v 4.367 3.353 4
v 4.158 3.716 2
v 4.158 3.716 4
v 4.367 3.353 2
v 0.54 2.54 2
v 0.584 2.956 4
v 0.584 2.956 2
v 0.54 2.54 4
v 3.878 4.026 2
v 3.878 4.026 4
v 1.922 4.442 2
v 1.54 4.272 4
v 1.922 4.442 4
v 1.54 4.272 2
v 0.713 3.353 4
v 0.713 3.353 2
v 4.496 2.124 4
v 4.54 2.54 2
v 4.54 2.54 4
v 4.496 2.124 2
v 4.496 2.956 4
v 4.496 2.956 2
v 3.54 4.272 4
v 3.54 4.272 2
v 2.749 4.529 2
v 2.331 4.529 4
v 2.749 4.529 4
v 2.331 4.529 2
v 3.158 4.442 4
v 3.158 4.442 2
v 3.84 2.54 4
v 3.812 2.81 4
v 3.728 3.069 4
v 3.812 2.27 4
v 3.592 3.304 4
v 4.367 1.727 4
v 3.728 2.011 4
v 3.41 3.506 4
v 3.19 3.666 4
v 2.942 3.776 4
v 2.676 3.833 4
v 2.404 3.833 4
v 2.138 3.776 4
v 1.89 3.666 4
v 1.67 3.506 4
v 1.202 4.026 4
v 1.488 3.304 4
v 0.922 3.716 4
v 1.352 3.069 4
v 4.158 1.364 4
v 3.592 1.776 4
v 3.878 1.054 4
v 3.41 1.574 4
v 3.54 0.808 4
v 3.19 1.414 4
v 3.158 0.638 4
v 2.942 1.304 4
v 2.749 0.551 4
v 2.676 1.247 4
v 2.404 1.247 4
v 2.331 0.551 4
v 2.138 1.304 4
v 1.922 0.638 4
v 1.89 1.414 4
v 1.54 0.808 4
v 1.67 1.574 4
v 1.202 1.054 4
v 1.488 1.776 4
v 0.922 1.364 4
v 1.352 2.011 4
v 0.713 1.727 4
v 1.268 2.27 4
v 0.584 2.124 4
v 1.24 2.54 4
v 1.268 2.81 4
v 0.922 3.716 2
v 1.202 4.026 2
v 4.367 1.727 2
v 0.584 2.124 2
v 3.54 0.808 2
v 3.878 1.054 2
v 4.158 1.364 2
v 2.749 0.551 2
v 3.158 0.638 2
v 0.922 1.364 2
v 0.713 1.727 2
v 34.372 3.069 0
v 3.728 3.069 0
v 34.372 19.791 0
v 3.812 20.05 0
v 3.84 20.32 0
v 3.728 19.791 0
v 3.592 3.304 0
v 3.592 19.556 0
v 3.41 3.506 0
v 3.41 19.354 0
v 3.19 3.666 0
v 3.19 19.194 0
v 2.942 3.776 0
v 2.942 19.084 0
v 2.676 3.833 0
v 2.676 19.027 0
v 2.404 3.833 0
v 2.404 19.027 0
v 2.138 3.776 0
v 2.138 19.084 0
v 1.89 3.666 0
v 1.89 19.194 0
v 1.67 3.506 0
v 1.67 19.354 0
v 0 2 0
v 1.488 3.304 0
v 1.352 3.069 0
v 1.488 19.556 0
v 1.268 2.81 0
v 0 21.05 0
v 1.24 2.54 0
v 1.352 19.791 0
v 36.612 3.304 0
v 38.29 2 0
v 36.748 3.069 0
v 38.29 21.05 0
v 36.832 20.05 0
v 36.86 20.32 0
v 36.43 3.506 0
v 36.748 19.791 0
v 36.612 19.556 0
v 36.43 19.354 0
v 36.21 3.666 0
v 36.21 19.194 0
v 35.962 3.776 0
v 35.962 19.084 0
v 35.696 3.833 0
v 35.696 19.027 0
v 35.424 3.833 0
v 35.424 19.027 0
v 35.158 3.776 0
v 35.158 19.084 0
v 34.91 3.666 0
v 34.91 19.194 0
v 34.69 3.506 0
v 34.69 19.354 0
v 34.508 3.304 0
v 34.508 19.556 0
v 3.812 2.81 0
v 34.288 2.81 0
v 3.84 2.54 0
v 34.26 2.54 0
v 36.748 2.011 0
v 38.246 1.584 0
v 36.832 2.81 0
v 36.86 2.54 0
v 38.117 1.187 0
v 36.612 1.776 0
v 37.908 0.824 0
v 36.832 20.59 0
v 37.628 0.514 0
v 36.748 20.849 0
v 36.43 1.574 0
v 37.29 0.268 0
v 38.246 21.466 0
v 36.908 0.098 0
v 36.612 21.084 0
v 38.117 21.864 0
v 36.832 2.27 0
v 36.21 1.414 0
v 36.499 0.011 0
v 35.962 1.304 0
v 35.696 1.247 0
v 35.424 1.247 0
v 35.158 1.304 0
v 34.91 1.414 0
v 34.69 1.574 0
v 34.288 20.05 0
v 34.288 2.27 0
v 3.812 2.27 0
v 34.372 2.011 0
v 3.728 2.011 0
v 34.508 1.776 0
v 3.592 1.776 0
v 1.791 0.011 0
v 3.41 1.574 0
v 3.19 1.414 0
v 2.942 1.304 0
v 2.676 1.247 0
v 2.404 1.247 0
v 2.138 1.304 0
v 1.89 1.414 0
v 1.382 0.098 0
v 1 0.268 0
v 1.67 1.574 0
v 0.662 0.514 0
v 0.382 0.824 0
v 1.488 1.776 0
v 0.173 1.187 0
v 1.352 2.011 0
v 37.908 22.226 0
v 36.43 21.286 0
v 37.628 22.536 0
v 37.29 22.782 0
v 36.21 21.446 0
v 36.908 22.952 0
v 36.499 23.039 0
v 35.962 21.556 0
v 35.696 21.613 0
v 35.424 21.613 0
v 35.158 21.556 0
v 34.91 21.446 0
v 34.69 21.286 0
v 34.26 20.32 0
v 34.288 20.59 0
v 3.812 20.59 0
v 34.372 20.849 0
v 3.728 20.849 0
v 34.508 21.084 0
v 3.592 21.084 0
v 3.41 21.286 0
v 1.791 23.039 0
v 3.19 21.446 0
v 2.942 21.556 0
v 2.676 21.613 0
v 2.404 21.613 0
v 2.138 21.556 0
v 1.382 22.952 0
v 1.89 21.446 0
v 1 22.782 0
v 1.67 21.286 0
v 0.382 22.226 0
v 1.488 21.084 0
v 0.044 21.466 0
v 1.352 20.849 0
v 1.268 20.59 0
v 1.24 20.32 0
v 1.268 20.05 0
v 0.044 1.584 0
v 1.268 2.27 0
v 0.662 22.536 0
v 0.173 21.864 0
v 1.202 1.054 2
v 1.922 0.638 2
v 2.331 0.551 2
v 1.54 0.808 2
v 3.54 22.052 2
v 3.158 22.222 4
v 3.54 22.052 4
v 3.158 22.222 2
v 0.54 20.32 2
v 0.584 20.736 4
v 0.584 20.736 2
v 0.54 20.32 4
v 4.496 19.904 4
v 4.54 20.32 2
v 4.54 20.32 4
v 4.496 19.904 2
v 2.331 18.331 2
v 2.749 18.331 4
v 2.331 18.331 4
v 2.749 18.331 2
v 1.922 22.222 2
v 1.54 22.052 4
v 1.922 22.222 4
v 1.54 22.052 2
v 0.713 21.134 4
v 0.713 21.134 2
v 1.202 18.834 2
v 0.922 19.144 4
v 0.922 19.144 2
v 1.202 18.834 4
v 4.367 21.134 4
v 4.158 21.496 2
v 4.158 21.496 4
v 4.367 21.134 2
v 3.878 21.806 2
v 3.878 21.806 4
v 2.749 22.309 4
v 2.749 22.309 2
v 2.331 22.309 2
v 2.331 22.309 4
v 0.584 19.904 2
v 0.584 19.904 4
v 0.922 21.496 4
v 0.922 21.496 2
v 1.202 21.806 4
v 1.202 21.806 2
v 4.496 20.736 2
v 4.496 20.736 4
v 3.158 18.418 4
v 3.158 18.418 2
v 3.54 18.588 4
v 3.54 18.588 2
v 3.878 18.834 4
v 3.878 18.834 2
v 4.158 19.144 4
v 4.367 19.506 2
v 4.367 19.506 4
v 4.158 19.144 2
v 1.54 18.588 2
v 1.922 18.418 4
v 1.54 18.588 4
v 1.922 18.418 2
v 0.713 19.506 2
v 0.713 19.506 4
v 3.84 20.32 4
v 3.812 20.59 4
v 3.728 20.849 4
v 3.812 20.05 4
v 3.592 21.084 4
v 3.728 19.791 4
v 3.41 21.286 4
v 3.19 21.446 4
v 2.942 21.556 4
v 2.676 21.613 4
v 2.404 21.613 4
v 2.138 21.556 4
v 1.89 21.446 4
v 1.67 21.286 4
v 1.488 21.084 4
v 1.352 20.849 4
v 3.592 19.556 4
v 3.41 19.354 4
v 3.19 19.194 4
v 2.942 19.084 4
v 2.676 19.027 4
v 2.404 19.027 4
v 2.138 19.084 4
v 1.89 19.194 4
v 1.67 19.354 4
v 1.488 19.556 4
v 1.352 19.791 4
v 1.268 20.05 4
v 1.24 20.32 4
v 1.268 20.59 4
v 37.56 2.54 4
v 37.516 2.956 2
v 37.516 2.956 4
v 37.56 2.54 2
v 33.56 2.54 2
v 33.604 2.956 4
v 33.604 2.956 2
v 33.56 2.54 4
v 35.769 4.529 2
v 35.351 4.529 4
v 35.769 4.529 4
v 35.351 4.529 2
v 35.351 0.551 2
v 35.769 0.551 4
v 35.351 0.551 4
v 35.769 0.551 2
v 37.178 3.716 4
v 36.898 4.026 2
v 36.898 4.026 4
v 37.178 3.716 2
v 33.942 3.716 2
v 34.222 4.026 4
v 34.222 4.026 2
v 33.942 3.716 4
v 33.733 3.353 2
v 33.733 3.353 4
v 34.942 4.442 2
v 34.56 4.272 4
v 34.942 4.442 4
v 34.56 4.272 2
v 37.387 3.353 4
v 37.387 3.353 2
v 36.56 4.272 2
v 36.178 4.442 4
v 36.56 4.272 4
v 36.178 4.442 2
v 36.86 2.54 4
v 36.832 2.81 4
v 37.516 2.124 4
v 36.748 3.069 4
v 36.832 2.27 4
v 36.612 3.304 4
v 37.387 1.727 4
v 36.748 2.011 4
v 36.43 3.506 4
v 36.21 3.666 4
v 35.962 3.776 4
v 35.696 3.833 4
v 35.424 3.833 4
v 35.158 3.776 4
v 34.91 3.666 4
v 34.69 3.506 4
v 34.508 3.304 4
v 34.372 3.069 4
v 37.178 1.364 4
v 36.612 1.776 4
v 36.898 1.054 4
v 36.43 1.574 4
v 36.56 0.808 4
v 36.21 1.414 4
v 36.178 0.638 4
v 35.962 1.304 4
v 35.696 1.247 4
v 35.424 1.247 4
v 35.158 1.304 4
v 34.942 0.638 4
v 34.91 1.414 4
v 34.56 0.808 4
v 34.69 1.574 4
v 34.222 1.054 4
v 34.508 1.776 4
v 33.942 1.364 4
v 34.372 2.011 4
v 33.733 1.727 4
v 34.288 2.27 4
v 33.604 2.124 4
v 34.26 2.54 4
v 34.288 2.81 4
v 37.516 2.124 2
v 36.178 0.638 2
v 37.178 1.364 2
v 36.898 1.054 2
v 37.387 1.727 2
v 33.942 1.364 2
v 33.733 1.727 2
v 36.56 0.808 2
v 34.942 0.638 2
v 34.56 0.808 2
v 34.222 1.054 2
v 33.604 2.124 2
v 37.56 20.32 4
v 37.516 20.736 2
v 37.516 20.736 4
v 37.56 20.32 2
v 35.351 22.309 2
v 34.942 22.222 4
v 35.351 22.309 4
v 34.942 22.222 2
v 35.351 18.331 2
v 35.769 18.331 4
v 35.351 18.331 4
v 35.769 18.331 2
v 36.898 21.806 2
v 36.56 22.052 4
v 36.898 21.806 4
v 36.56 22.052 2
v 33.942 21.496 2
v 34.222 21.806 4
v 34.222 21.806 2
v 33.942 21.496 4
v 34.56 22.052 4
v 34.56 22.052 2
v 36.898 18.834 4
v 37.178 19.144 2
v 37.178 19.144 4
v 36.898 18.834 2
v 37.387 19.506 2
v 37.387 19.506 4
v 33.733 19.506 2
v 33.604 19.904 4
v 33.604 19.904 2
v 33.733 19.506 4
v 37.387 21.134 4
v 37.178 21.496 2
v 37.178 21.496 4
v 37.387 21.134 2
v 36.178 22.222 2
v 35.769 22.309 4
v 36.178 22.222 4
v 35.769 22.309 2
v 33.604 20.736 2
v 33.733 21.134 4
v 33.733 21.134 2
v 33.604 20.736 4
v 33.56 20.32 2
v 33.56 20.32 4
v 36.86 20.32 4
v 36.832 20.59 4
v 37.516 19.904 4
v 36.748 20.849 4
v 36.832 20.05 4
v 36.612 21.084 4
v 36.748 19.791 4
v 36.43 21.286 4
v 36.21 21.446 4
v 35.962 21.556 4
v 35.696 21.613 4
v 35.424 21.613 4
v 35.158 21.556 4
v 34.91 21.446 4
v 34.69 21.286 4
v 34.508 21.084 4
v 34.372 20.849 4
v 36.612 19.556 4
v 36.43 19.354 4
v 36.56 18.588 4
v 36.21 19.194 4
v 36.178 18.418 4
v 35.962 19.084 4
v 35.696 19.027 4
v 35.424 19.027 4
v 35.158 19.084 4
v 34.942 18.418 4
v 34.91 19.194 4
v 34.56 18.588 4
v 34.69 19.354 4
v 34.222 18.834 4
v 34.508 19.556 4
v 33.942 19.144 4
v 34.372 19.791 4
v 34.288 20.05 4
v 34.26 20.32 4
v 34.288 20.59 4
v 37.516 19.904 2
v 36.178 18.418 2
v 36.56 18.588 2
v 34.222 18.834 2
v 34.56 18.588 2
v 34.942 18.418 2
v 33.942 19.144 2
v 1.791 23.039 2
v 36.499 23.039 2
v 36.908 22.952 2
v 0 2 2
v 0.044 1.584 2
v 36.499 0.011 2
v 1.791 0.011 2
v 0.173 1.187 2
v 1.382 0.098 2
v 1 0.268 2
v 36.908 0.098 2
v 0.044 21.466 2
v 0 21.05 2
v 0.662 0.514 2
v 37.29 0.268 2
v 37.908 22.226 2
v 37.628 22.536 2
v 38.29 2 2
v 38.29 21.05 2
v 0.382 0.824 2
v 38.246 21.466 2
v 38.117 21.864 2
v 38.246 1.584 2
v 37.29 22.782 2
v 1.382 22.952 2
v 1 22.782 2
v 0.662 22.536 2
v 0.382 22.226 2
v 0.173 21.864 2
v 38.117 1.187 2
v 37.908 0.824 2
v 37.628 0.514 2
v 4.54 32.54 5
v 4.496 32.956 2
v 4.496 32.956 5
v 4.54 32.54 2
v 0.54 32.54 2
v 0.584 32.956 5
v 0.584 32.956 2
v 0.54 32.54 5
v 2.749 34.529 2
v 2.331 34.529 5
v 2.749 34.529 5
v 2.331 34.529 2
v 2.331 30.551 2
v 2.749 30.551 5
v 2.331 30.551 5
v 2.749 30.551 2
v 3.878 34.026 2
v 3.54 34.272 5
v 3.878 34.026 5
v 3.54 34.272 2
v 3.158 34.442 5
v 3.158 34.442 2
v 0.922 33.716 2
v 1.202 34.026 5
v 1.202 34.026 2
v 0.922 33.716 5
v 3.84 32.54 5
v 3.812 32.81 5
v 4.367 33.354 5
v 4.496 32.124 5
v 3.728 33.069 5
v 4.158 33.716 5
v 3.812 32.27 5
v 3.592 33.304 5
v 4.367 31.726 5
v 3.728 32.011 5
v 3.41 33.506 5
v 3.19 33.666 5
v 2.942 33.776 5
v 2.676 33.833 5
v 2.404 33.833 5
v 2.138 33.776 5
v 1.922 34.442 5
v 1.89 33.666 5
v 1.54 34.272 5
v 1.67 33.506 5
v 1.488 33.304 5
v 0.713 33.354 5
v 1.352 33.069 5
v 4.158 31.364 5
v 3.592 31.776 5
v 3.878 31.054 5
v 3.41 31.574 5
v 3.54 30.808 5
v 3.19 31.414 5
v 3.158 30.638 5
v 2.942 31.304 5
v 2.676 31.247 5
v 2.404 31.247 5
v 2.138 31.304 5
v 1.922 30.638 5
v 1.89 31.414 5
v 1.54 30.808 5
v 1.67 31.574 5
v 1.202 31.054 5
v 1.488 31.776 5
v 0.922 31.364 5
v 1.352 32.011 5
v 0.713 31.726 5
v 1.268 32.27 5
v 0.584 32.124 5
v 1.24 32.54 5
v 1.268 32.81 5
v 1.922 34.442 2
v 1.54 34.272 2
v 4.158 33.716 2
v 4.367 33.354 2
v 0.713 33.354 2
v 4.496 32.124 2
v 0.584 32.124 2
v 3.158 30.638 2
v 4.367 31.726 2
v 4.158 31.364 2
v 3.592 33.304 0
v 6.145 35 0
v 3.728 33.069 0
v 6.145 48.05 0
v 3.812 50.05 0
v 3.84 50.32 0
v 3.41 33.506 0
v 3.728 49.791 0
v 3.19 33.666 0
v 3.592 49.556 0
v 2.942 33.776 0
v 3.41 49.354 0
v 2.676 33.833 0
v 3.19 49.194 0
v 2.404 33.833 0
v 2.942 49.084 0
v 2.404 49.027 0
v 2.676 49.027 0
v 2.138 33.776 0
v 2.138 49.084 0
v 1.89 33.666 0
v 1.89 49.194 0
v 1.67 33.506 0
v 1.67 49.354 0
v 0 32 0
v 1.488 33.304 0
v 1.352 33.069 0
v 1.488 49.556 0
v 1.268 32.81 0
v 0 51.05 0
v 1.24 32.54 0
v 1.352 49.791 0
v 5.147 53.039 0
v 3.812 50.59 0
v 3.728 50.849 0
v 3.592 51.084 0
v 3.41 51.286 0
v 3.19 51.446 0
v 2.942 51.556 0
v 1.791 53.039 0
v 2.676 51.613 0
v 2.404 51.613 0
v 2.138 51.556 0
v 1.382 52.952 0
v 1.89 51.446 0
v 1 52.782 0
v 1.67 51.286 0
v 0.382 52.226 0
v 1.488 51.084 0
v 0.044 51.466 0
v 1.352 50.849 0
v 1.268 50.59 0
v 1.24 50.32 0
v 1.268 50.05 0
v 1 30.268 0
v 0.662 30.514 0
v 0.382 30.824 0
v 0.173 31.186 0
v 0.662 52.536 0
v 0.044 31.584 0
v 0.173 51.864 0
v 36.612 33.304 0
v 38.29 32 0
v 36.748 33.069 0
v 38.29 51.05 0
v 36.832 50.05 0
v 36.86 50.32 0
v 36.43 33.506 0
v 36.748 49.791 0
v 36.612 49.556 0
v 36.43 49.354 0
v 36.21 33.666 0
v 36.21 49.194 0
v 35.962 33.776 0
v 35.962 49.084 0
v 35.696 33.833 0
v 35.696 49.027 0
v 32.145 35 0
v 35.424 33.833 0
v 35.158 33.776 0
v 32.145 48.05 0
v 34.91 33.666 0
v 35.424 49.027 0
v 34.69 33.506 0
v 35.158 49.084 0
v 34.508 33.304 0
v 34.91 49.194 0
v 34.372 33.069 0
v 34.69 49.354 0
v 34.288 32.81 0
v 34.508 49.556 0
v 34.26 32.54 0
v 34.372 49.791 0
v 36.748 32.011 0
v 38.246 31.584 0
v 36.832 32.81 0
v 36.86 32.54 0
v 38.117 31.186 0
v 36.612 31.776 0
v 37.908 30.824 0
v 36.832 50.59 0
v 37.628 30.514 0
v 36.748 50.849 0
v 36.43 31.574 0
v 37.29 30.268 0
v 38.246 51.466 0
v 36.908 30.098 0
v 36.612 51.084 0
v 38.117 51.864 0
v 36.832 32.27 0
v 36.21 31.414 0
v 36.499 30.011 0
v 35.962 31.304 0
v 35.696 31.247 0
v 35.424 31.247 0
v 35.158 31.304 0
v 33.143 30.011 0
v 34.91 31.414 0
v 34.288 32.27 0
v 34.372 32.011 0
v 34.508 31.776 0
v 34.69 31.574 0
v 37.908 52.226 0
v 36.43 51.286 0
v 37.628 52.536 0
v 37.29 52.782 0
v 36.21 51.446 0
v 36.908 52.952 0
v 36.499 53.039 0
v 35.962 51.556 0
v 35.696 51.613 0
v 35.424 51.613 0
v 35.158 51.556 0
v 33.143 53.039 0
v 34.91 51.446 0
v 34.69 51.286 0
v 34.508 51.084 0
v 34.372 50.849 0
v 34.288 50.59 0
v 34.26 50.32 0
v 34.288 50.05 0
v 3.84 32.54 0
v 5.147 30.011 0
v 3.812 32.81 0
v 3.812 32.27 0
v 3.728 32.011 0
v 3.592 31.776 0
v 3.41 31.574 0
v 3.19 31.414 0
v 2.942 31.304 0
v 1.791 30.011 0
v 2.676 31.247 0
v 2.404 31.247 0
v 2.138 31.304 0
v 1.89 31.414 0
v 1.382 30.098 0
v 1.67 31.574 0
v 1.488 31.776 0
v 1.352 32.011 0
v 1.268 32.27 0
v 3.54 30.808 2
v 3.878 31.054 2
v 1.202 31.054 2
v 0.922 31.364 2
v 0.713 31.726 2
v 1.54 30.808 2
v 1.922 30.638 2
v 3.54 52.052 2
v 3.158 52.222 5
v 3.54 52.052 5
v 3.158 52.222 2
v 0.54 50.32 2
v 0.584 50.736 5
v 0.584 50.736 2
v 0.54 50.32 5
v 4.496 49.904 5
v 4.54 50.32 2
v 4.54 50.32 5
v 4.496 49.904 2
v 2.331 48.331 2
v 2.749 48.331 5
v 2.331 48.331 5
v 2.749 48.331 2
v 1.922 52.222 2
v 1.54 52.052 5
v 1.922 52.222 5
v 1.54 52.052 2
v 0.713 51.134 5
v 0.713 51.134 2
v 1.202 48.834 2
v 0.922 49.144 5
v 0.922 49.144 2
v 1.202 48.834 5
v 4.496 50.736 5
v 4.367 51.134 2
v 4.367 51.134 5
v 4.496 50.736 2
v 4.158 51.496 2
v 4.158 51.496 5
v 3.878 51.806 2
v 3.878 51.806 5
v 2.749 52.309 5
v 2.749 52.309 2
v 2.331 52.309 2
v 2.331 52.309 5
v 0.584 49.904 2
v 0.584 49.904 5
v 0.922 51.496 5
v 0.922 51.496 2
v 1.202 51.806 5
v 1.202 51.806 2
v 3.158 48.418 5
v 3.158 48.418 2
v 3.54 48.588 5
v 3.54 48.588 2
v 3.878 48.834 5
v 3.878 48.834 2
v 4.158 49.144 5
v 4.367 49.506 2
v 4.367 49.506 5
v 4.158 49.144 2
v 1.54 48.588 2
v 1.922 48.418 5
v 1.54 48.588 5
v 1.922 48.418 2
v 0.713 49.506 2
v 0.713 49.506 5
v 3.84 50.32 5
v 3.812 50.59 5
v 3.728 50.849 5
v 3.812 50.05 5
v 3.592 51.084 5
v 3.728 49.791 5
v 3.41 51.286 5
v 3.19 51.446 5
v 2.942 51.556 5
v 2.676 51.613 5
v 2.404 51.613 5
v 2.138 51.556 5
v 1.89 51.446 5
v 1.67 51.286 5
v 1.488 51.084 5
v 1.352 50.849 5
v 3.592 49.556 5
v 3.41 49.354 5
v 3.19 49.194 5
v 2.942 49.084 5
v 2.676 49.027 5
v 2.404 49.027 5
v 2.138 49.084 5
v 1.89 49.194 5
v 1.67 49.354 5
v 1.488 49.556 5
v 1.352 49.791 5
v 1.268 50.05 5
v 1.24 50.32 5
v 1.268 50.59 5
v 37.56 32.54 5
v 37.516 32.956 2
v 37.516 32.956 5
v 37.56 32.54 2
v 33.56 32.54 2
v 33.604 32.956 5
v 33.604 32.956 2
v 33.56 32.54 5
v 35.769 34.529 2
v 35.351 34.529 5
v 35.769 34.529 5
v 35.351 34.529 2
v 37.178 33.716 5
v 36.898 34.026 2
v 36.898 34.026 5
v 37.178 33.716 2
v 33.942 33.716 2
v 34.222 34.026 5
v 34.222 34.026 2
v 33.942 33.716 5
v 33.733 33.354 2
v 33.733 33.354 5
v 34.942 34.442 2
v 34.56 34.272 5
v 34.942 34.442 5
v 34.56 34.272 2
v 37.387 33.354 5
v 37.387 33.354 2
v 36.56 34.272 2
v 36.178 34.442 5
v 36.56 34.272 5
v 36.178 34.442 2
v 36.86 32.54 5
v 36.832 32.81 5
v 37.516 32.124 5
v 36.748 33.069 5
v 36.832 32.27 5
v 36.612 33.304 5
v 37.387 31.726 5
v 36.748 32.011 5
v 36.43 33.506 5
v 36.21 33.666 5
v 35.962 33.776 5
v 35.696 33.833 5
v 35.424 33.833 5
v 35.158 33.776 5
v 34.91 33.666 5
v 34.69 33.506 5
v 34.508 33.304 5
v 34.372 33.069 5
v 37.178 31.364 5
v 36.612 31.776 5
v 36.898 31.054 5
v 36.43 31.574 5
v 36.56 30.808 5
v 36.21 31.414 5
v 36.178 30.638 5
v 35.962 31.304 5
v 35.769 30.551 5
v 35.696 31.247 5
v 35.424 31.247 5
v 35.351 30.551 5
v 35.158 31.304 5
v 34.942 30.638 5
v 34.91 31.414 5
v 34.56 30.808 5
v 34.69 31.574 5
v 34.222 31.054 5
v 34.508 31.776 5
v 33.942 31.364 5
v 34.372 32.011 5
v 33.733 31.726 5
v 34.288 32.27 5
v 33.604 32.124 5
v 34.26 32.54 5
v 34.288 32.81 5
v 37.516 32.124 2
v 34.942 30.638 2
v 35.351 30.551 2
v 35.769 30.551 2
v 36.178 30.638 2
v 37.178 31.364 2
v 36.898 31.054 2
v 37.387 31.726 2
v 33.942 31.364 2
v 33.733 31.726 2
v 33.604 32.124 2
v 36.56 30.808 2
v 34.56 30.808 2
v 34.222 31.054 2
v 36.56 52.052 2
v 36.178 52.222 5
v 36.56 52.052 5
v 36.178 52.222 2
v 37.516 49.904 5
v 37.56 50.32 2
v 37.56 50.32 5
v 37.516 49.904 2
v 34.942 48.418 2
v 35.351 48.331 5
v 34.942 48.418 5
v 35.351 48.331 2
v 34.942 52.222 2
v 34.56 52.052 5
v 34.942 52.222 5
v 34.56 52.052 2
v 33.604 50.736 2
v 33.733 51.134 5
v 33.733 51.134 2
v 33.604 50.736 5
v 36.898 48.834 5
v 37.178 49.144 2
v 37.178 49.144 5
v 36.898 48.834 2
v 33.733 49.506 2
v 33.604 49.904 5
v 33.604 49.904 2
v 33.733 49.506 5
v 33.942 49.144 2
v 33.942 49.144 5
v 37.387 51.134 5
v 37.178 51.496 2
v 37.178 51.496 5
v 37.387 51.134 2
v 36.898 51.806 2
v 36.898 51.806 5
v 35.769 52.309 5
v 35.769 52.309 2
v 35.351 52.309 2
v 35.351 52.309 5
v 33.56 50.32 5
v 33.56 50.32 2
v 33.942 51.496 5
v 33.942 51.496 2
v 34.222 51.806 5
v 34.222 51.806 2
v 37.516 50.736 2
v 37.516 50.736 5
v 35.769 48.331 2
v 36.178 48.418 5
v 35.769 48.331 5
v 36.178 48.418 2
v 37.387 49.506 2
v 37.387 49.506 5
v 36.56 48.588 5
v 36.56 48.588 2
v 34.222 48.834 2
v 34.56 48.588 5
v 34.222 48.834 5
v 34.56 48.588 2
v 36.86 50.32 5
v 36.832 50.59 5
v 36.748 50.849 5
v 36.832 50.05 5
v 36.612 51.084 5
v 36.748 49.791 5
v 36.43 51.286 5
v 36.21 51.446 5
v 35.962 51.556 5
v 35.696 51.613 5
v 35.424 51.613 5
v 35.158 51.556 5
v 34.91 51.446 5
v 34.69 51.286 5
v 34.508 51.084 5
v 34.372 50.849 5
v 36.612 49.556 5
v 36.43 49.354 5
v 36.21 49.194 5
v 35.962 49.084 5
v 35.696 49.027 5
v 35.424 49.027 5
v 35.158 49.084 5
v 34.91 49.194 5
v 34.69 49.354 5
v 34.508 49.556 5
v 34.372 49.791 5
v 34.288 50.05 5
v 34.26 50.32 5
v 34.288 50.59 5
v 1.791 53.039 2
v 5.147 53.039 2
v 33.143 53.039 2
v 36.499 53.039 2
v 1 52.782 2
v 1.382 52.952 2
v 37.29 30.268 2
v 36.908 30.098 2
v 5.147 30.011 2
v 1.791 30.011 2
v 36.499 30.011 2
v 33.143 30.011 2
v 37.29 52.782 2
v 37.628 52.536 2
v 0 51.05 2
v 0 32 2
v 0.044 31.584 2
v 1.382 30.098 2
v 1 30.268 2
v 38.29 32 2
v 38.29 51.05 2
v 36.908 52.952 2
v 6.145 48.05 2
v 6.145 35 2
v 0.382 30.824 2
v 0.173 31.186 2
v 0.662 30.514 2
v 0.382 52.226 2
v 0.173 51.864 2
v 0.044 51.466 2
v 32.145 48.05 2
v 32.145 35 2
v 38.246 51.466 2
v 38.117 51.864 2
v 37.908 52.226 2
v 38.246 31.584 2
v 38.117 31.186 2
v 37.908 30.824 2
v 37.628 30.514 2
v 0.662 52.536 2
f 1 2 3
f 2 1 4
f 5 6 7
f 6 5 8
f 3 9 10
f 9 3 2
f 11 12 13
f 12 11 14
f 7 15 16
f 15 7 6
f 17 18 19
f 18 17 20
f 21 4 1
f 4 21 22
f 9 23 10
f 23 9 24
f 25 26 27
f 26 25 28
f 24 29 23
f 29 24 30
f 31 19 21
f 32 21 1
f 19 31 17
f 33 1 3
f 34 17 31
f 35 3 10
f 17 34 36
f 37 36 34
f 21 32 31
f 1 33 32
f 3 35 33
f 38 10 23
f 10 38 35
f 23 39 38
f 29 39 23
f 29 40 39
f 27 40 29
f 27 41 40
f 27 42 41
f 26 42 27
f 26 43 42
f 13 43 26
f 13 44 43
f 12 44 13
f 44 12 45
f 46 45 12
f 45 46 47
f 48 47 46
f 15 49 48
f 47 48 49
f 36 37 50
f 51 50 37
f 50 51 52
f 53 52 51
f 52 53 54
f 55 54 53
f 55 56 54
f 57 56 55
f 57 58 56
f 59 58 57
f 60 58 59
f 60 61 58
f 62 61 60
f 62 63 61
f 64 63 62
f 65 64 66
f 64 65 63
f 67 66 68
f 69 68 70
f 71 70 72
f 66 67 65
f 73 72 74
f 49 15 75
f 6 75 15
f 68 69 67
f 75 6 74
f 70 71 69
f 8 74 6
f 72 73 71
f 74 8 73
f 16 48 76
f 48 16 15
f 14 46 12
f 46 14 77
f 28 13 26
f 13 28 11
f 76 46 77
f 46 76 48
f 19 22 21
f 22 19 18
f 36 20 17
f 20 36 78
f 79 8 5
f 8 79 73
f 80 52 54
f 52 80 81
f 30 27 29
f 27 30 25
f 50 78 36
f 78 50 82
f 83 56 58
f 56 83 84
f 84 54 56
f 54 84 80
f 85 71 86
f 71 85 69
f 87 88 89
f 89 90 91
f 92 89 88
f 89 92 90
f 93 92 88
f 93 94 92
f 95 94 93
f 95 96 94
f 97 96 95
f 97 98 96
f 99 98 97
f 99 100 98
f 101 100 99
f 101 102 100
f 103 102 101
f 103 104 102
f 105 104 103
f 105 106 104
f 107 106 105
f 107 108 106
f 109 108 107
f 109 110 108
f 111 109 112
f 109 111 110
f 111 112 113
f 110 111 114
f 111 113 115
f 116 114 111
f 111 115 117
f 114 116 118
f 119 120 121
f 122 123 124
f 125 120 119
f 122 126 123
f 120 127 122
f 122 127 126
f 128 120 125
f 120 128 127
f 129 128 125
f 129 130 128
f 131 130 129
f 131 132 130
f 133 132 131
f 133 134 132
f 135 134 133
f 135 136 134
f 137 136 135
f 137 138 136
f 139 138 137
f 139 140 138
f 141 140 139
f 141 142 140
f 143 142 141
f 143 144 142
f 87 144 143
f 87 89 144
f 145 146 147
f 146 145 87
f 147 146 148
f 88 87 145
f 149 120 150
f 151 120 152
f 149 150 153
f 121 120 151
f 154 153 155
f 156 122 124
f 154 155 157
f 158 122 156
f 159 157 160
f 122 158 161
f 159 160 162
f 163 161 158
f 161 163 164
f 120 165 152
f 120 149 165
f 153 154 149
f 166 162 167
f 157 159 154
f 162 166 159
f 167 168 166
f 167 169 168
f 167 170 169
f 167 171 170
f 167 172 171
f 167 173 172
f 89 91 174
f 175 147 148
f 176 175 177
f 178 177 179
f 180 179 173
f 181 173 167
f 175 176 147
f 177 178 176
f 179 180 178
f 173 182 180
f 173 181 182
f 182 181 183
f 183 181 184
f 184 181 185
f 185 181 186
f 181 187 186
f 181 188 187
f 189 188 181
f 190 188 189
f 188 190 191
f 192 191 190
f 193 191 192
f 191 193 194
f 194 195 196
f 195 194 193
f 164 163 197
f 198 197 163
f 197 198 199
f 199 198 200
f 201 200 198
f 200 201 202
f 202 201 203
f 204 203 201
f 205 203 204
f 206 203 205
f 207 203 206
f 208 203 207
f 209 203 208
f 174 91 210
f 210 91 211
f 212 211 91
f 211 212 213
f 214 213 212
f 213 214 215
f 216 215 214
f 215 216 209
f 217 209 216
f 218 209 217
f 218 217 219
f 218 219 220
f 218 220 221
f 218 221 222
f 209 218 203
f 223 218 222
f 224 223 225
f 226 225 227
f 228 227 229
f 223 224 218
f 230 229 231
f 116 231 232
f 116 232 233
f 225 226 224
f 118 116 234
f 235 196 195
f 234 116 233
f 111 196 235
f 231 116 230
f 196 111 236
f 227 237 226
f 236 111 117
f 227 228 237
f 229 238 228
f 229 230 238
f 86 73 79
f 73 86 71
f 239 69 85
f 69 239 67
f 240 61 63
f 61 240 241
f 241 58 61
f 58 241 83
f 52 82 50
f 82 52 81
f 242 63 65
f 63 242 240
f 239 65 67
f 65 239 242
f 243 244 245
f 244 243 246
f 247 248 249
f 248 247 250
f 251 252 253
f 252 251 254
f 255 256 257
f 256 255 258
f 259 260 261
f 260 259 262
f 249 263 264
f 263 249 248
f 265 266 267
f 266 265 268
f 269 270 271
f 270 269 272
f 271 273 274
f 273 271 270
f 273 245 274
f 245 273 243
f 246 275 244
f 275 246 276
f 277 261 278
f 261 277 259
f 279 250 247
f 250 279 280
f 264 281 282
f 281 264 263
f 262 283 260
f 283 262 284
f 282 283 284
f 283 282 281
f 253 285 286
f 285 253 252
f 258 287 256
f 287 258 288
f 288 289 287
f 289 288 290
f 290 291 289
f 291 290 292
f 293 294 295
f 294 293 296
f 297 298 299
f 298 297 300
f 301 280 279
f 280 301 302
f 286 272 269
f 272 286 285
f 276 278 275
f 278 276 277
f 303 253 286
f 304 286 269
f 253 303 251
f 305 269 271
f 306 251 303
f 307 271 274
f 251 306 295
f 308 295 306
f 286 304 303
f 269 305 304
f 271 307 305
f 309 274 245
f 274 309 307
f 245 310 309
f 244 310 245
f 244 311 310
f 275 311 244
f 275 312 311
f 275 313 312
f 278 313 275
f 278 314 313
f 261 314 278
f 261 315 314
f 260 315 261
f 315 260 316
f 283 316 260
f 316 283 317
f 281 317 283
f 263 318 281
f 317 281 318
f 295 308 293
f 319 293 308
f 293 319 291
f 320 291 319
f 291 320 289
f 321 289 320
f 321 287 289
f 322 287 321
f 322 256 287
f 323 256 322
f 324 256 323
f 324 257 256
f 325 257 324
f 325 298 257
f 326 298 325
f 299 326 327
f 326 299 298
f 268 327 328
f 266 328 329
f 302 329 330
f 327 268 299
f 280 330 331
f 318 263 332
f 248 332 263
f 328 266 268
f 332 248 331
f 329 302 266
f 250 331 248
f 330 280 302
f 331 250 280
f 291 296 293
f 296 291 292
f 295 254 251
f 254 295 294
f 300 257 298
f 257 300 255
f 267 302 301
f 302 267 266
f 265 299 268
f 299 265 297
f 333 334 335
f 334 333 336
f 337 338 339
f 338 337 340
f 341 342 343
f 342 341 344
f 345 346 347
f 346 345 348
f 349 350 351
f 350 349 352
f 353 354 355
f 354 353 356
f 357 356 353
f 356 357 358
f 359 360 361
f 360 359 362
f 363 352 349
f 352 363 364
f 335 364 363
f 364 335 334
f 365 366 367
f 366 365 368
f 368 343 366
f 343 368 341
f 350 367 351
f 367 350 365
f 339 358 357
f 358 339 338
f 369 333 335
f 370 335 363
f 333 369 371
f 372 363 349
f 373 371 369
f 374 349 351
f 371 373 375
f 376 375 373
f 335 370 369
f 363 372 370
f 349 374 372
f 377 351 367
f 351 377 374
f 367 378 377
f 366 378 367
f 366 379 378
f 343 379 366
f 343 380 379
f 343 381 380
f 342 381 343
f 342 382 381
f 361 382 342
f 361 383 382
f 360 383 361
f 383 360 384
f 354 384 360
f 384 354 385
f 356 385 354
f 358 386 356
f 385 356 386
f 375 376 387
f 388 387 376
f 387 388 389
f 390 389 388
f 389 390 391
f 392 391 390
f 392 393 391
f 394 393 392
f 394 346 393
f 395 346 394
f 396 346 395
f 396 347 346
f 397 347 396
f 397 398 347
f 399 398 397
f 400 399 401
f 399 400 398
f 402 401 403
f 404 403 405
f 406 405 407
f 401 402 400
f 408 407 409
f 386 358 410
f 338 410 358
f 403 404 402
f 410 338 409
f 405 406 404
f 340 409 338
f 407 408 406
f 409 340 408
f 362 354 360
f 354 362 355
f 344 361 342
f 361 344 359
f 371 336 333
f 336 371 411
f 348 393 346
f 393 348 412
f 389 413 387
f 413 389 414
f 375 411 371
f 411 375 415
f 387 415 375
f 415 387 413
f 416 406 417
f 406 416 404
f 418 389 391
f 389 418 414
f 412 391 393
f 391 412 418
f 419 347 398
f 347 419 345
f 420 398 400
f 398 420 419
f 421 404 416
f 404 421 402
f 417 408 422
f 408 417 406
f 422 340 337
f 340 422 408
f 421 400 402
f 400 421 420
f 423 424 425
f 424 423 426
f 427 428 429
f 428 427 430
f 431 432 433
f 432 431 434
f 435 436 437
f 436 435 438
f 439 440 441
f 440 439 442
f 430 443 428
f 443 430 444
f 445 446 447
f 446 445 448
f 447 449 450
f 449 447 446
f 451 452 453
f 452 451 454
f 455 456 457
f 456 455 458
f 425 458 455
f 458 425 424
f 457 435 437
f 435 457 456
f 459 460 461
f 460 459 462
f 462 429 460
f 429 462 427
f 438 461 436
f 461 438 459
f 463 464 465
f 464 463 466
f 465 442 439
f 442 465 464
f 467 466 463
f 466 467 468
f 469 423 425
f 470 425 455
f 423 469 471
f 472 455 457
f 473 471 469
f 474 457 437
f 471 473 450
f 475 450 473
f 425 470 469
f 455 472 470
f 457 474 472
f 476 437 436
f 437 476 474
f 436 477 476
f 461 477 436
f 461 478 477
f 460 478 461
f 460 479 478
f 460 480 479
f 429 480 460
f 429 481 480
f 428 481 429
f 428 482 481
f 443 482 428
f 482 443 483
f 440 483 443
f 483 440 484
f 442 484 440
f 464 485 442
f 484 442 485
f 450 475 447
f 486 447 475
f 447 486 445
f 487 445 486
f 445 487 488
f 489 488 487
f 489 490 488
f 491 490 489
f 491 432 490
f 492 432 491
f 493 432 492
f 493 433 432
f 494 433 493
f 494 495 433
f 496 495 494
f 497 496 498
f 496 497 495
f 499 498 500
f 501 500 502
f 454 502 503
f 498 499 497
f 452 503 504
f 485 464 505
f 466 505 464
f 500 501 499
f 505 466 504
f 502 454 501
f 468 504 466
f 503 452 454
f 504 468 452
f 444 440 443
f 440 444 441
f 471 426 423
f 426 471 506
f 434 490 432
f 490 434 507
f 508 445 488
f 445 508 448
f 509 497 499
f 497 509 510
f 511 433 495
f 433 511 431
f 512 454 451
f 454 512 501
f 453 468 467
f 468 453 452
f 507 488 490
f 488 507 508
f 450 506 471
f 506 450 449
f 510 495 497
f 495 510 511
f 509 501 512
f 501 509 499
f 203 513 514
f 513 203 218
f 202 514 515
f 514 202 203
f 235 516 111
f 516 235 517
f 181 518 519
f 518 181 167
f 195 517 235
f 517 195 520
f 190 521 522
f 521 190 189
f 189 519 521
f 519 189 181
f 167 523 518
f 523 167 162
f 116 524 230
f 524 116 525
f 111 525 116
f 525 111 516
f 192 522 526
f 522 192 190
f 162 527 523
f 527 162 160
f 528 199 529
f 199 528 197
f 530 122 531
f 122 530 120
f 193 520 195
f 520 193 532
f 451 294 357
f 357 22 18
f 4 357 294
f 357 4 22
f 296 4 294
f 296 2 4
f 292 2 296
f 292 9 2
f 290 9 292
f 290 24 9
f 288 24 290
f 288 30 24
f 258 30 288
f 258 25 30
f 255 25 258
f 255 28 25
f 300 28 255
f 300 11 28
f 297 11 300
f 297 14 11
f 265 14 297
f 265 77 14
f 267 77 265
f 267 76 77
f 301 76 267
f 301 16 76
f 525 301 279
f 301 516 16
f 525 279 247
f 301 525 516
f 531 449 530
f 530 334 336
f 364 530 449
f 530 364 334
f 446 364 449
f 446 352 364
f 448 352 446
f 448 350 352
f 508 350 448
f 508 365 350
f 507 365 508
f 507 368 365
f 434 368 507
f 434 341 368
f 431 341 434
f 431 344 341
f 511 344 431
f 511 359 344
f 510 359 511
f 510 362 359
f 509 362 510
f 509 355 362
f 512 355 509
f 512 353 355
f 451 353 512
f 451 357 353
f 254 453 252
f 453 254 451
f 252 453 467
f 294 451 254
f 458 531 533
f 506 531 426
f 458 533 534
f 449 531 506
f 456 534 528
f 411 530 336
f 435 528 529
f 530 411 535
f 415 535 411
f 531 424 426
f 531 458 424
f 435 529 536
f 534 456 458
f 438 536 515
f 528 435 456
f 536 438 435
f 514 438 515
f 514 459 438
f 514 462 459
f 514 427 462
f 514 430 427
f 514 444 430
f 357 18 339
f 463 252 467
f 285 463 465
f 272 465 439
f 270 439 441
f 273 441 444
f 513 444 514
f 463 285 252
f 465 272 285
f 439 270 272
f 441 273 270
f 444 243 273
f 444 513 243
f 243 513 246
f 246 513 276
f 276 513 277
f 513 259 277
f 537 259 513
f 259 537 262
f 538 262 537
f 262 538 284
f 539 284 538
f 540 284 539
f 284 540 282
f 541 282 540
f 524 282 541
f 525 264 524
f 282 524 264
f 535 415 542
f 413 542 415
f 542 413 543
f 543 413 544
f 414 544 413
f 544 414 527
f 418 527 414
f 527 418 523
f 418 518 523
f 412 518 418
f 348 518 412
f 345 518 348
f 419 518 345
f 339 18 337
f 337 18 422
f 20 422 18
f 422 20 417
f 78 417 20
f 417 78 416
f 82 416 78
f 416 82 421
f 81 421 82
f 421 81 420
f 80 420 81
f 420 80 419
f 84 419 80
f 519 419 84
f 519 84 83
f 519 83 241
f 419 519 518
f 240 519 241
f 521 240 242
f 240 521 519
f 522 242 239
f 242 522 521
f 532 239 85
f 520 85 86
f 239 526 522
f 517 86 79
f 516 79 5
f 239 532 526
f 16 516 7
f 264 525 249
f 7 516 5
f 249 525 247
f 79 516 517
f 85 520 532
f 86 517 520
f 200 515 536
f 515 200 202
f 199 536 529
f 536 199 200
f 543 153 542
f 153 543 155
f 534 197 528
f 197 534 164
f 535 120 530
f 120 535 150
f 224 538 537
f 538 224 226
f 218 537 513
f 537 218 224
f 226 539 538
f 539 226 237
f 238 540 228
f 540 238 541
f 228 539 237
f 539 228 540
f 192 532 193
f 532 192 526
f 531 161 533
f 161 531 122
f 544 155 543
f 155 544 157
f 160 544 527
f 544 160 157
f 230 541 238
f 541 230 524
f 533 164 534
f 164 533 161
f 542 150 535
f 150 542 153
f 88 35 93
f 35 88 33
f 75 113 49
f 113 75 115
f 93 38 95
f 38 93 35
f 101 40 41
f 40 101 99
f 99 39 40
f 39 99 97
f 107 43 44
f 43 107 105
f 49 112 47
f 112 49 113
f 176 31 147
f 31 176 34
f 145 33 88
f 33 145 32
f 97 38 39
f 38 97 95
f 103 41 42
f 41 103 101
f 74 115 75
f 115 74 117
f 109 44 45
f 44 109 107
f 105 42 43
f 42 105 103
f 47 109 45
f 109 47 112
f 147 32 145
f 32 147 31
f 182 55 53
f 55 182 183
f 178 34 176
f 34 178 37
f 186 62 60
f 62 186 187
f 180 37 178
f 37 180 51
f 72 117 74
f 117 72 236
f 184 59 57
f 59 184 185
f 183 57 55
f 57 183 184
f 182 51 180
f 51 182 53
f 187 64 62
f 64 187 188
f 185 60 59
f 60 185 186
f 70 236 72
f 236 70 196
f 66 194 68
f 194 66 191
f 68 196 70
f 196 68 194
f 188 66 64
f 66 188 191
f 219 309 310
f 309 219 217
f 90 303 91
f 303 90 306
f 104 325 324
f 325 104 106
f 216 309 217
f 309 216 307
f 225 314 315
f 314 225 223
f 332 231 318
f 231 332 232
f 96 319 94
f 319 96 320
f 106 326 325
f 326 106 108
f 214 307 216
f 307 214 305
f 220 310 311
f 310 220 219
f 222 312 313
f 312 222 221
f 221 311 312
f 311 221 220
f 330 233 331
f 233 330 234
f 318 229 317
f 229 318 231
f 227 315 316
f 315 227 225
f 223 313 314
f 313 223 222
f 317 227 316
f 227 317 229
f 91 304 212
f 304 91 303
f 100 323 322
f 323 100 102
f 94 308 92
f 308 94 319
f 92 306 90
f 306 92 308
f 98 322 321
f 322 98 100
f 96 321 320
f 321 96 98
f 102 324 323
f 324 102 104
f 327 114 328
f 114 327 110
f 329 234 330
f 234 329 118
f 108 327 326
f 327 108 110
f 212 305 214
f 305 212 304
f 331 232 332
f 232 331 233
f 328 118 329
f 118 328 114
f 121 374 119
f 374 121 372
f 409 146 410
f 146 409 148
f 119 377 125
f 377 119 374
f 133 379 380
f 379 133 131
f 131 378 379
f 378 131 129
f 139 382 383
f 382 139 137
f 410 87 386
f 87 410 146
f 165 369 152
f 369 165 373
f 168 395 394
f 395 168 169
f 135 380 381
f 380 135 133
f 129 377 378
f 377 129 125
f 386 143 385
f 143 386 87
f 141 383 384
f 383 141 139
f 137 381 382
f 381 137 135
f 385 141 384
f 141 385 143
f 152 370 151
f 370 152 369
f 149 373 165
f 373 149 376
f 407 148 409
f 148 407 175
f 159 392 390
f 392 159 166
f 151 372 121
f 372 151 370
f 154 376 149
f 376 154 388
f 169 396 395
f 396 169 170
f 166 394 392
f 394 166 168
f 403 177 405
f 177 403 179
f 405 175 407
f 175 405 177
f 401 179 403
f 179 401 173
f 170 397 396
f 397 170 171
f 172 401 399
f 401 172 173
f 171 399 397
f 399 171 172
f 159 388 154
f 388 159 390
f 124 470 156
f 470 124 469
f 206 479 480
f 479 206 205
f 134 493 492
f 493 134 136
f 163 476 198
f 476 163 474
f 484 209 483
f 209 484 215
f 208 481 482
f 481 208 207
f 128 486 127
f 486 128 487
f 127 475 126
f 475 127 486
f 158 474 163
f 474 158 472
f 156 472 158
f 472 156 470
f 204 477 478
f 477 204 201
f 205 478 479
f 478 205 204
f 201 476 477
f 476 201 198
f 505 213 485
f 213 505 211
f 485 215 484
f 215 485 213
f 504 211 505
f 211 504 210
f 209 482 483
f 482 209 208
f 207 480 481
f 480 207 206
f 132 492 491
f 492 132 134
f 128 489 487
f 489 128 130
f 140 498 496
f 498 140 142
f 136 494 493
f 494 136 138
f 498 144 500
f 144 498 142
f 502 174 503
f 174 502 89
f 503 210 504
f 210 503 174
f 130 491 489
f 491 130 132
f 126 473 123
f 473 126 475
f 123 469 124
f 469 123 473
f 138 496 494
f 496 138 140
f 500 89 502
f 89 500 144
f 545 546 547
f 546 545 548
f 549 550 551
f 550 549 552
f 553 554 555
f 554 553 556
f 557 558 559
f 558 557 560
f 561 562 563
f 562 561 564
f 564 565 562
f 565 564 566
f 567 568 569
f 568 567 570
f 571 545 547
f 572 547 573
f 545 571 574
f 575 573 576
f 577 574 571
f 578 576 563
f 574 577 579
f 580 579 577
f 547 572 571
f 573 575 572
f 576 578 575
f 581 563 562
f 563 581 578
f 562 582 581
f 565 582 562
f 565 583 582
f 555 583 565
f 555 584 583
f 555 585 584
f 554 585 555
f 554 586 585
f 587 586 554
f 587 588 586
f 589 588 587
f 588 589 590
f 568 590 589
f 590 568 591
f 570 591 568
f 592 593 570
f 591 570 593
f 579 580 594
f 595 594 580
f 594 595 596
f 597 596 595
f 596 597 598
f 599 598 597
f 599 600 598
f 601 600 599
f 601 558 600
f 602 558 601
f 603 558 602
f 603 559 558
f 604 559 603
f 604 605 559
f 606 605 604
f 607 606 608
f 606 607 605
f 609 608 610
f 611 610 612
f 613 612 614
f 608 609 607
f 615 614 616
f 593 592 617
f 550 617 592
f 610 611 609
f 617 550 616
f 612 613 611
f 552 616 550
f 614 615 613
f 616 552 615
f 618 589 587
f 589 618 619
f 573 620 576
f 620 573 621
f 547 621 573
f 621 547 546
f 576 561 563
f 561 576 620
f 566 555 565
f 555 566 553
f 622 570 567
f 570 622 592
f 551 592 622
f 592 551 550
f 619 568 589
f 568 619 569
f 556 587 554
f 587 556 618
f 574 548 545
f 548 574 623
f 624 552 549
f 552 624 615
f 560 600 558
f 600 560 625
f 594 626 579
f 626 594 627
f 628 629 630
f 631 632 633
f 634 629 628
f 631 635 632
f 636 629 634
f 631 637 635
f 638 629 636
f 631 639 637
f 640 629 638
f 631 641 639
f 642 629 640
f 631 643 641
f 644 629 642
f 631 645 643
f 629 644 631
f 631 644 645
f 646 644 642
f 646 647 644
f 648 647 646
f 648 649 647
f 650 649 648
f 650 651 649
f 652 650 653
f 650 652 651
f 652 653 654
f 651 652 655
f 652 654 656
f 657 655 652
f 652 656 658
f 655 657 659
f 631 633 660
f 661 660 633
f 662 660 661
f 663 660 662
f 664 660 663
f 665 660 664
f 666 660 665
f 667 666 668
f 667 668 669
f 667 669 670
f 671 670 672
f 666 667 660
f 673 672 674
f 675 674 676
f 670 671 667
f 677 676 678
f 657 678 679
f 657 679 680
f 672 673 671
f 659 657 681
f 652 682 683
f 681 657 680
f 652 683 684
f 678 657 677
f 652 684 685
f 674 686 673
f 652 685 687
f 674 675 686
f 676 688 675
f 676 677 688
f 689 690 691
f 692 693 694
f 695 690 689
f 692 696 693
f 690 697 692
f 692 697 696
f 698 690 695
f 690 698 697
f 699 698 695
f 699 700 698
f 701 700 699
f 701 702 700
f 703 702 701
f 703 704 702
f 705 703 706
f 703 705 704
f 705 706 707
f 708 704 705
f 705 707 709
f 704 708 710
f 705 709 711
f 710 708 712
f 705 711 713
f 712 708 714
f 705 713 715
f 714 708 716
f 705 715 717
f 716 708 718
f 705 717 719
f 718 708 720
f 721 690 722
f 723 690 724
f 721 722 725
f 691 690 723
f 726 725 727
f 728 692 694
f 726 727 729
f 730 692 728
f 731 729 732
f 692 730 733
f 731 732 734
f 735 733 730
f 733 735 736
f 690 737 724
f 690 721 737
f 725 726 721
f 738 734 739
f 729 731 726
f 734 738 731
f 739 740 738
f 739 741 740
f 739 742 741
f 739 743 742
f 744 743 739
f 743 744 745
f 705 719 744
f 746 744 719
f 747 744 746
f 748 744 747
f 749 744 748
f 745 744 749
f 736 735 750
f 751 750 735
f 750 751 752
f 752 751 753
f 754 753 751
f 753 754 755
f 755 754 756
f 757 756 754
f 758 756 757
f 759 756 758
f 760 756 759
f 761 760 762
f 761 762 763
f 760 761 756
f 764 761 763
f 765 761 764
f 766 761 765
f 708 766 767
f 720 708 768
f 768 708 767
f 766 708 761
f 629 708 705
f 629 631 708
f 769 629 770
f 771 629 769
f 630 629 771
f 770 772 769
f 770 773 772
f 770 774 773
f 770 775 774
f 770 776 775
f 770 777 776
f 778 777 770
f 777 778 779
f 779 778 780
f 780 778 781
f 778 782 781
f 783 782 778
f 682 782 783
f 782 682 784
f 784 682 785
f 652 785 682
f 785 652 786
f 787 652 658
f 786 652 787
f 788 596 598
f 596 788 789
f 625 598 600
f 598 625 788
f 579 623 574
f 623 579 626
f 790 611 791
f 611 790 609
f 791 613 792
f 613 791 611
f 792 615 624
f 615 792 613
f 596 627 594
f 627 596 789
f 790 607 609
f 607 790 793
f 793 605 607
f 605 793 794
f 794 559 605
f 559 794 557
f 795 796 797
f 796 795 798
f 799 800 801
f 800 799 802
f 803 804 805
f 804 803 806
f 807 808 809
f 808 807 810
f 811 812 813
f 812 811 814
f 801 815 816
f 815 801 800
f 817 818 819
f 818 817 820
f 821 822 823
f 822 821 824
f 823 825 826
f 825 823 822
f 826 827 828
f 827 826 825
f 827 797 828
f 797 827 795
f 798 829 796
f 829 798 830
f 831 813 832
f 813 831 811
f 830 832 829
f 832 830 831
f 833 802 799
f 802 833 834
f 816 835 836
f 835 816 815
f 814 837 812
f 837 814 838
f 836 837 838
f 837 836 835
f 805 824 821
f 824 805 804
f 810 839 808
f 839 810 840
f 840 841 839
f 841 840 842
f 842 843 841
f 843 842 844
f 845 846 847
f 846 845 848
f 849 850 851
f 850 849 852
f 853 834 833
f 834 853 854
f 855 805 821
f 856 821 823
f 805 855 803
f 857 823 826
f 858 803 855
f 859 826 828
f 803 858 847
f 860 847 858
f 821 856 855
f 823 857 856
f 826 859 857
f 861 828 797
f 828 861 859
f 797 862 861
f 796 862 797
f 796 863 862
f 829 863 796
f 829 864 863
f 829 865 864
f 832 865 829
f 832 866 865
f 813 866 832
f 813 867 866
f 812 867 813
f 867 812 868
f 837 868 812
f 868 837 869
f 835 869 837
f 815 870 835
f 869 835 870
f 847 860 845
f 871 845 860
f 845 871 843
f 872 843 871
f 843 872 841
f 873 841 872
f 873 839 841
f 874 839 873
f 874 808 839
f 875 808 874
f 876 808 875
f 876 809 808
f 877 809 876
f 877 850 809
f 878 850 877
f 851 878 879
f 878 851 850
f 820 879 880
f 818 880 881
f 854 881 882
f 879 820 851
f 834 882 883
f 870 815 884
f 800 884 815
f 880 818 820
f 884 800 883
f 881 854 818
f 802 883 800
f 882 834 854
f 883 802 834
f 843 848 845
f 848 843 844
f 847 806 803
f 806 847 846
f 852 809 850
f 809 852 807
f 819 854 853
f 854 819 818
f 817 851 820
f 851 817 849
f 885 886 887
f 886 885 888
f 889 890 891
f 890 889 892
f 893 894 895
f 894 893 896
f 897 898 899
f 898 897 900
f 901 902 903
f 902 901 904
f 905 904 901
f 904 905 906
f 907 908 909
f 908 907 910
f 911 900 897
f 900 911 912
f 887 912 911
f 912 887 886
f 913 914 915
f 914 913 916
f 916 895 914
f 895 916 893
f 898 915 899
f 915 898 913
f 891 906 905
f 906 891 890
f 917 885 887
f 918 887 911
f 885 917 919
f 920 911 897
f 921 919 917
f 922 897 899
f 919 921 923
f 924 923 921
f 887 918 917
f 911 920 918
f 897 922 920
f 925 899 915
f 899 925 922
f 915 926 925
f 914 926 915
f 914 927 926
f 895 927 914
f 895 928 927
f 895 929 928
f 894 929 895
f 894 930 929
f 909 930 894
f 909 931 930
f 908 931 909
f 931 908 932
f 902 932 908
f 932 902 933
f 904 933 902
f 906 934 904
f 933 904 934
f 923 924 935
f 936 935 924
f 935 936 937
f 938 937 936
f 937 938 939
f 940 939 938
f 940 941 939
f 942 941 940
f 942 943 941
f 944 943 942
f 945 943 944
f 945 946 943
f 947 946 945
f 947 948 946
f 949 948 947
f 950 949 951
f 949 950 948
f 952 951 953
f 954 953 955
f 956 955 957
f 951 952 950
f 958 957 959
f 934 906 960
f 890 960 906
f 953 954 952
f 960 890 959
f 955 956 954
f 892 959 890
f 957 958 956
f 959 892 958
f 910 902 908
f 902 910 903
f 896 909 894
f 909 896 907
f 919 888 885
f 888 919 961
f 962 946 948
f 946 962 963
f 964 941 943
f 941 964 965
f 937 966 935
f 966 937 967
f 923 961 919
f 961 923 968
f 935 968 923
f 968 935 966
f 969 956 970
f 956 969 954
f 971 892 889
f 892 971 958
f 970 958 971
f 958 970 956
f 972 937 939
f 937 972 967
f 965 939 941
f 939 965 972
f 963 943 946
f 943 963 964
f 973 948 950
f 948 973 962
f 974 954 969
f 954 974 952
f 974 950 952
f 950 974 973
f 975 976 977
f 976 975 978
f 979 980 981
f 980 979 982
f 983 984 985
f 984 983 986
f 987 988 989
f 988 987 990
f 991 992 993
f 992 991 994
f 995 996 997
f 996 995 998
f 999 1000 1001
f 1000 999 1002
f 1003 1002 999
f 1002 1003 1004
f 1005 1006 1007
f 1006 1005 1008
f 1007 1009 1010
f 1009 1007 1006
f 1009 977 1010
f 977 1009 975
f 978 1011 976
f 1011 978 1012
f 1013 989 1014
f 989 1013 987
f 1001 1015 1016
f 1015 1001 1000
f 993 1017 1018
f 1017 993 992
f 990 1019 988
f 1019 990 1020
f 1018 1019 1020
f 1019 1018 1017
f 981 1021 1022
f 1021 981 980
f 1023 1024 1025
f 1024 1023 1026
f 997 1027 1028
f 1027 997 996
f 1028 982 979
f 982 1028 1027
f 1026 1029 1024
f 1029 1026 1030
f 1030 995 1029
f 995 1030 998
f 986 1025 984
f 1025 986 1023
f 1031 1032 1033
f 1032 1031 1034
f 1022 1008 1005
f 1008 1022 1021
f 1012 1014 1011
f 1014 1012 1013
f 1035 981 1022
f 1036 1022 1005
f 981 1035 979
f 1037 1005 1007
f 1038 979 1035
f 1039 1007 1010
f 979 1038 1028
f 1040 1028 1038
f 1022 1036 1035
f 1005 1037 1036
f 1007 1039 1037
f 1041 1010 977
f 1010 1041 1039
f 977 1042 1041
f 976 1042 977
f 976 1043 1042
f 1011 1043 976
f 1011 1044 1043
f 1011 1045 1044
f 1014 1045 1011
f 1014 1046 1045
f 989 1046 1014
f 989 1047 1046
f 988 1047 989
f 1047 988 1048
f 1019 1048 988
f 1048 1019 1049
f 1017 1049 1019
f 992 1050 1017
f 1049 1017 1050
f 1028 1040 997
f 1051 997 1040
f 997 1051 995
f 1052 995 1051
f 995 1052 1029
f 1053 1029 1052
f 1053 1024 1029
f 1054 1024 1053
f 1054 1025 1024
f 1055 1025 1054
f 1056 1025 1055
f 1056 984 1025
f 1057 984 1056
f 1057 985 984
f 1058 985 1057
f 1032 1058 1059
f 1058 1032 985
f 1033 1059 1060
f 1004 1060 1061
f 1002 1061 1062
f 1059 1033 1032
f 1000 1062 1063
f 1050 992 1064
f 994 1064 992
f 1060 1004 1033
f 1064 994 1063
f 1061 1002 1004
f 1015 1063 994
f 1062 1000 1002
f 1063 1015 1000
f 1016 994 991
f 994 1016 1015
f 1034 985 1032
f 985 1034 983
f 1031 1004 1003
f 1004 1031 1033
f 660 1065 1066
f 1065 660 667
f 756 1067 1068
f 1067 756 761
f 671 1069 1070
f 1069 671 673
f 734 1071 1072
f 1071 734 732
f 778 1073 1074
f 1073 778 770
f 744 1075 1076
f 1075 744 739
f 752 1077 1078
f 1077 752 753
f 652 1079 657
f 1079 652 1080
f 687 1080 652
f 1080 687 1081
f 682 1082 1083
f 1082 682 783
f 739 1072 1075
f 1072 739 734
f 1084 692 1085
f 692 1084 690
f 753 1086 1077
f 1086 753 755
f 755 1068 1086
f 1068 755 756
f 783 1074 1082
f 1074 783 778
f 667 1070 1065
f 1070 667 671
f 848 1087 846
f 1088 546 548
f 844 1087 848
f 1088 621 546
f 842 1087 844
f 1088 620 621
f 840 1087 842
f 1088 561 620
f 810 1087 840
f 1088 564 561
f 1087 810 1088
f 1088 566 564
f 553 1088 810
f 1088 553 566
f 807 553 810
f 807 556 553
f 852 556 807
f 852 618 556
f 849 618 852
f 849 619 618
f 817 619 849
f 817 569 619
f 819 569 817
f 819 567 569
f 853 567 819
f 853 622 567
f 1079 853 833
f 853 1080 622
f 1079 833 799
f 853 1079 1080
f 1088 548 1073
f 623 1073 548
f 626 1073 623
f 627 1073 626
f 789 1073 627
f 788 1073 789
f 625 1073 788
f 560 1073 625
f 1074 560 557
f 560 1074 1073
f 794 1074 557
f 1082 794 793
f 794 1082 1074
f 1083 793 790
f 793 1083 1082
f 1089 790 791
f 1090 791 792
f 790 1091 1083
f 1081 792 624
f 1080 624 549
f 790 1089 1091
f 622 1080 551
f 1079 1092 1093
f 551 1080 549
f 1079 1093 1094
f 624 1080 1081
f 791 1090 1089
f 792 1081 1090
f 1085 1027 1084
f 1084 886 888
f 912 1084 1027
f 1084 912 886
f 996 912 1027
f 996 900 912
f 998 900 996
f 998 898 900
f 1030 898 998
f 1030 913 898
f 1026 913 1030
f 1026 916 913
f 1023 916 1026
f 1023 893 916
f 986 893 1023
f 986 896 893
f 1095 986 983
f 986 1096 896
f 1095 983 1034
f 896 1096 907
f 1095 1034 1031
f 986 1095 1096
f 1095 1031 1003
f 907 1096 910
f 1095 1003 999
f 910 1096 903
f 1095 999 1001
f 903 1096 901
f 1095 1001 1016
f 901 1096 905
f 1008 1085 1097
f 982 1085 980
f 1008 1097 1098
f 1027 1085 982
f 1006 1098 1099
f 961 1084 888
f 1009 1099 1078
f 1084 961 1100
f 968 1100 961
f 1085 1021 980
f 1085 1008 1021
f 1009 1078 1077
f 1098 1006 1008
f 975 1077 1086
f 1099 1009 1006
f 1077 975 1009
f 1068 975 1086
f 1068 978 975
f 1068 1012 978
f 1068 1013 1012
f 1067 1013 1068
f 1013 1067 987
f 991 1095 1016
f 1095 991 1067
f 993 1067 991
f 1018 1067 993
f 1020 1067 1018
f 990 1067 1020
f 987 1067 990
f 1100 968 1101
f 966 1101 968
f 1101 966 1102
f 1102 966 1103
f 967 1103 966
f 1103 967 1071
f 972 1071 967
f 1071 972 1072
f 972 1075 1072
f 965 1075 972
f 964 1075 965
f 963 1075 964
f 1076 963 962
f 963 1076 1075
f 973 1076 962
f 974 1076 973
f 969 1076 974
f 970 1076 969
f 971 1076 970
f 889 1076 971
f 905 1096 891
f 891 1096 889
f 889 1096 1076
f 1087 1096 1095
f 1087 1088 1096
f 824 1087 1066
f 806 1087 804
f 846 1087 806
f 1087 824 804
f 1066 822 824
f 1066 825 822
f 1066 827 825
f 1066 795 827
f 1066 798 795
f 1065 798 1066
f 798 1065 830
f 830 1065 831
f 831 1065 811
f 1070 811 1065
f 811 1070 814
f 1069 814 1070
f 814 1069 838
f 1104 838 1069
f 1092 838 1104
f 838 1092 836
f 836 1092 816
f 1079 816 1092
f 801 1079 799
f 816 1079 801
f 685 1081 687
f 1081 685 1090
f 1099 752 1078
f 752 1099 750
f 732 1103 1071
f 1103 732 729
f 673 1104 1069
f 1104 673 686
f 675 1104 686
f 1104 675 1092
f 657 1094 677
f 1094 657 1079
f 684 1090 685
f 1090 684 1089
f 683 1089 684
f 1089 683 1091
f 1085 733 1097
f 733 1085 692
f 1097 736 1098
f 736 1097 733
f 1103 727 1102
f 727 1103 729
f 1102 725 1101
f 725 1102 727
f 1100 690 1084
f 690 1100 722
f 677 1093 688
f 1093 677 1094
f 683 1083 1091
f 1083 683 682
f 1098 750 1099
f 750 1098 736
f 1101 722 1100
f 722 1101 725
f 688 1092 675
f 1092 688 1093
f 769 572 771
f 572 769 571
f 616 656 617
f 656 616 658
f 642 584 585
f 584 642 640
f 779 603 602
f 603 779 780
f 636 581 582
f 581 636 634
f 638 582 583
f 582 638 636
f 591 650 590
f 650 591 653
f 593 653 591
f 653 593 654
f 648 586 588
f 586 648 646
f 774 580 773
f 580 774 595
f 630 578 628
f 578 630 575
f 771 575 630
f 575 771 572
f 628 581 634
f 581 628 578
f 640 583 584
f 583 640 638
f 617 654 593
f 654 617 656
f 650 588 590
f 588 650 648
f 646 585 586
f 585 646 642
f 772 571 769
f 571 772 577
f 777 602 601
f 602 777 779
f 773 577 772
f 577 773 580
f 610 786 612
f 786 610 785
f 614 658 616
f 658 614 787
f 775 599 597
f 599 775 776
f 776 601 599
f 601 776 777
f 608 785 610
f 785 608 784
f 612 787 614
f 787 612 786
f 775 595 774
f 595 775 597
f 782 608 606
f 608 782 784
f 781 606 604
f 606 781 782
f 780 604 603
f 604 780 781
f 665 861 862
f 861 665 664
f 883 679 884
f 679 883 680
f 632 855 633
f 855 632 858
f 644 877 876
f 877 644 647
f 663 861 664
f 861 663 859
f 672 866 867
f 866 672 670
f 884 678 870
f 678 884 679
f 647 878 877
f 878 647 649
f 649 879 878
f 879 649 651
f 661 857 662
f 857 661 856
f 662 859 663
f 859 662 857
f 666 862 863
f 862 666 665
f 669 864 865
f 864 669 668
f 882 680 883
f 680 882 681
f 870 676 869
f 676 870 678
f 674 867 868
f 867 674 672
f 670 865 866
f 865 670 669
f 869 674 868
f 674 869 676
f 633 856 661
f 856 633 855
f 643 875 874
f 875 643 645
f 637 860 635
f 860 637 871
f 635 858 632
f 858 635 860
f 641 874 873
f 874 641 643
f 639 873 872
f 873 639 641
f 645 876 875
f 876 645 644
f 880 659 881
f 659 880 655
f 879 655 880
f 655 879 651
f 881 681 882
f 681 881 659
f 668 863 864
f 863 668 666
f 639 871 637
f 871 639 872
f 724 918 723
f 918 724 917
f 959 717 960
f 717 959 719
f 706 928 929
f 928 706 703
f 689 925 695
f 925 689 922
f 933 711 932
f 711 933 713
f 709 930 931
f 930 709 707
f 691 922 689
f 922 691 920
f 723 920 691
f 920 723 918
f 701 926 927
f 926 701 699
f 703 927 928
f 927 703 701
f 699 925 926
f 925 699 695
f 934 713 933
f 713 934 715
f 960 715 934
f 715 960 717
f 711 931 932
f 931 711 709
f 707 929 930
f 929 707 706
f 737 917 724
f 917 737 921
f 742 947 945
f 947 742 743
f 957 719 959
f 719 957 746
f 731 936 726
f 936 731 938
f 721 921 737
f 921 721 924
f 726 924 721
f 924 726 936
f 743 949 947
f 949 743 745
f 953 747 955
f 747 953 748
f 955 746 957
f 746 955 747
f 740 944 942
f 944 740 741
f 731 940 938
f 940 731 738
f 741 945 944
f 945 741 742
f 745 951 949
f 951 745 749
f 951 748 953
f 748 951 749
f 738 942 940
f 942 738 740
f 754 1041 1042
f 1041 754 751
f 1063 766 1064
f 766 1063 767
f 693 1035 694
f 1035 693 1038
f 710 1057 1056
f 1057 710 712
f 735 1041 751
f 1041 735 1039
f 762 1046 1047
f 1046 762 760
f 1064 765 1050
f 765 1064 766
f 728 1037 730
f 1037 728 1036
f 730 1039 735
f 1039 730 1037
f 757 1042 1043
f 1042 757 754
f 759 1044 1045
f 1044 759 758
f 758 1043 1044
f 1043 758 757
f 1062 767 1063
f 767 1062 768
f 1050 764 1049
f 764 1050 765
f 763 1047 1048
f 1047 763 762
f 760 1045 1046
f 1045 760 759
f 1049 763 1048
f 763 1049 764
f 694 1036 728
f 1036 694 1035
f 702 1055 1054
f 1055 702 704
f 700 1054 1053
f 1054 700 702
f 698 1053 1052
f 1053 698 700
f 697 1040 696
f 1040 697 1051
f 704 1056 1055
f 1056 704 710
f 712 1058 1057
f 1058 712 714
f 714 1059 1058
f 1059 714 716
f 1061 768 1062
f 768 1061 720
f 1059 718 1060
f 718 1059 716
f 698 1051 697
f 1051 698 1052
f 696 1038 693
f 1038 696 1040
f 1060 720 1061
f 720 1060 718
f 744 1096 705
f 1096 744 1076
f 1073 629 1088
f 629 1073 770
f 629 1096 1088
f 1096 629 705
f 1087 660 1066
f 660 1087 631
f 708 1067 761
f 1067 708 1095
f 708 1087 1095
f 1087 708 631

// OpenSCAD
/* author: andimoto */

/* mil is the grid value of the ft232h's pcb
 see: https://learn.adafruit.com/adafruit-ft232h-breakout/downloads */
mil=25.4; //mm
plateThickness=2; //mm
standoff_thk=2; //mm
lenX=mil*1.35; //mm
lenY=mil*0.75; //mm
cylRadius=2; //mm
holeRadius=1.3; //mm

$fn=30;

module ft232h_plate(plateThk=2,standoffThk=2){
  difference() {
    union(){
      translate([cylRadius,cylRadius,0]) minkowski(){
        cube([lenX,lenY,plateThk/2]);
        cylinder(r=cylRadius);
      } /* minkowski */

      /* standoffs */
      translate([mil*0.1, mil*0.1, 0])
      for (i = [0,+1], j=[0,+1])
        translate([i*mil*1.3,j*mil*0.7,0])
        cylinder(r=cylRadius,h=plateThk+standoffThk);
    } /* union */

    /* standoff holes */
    translate([mil*0.1, mil*0.1, 0])
    for (i = [0,+1], j=[0,+1])
      translate([i*mil*1.3, j*mil*0.7, 0]){
      cylinder(r=holeRadius,h=plateThk+standoffThk);
}
} /* difference */
} /* module */


module ft232h_plate_top(plateThk=2,standoffThk1=2){
  difference() {
    ft232h_plate(plateThk=plateThk,standoffThk=standoffThk1);

      union() {
        translate([lenX/2+cylRadius,0,0])
        linear_extrude([0,0,plateThk/2])
        polygon([[-14,0],[14,0],[13,5],[-13,5]], paths=[[0,1,2,3]]);
      }
      union() {
        translate([lenX/2+cylRadius, lenY-cylRadius/2, 0])
        linear_extrude([0,0,plateThk/2])
        polygon([[-13,0],[13,0],[14,5],[-14,5]], paths=[[0,1,2,3]]);
      }

      /* usb */
      /* #union() {
        translate([3, lenY/2+cylRadius, plateThickness/2])
        cube([6,8,2],center=true);
      } */
  }
}


ft232h_plate(plateThk=plateThickness, standoffThk=standoff_thk);

/* put 1mm more on standoffs because of usb connector */
translate([0,30,0])
ft232h_plate_top(plateThk=plateThickness, standoffThk1=standoff_thk+1);
